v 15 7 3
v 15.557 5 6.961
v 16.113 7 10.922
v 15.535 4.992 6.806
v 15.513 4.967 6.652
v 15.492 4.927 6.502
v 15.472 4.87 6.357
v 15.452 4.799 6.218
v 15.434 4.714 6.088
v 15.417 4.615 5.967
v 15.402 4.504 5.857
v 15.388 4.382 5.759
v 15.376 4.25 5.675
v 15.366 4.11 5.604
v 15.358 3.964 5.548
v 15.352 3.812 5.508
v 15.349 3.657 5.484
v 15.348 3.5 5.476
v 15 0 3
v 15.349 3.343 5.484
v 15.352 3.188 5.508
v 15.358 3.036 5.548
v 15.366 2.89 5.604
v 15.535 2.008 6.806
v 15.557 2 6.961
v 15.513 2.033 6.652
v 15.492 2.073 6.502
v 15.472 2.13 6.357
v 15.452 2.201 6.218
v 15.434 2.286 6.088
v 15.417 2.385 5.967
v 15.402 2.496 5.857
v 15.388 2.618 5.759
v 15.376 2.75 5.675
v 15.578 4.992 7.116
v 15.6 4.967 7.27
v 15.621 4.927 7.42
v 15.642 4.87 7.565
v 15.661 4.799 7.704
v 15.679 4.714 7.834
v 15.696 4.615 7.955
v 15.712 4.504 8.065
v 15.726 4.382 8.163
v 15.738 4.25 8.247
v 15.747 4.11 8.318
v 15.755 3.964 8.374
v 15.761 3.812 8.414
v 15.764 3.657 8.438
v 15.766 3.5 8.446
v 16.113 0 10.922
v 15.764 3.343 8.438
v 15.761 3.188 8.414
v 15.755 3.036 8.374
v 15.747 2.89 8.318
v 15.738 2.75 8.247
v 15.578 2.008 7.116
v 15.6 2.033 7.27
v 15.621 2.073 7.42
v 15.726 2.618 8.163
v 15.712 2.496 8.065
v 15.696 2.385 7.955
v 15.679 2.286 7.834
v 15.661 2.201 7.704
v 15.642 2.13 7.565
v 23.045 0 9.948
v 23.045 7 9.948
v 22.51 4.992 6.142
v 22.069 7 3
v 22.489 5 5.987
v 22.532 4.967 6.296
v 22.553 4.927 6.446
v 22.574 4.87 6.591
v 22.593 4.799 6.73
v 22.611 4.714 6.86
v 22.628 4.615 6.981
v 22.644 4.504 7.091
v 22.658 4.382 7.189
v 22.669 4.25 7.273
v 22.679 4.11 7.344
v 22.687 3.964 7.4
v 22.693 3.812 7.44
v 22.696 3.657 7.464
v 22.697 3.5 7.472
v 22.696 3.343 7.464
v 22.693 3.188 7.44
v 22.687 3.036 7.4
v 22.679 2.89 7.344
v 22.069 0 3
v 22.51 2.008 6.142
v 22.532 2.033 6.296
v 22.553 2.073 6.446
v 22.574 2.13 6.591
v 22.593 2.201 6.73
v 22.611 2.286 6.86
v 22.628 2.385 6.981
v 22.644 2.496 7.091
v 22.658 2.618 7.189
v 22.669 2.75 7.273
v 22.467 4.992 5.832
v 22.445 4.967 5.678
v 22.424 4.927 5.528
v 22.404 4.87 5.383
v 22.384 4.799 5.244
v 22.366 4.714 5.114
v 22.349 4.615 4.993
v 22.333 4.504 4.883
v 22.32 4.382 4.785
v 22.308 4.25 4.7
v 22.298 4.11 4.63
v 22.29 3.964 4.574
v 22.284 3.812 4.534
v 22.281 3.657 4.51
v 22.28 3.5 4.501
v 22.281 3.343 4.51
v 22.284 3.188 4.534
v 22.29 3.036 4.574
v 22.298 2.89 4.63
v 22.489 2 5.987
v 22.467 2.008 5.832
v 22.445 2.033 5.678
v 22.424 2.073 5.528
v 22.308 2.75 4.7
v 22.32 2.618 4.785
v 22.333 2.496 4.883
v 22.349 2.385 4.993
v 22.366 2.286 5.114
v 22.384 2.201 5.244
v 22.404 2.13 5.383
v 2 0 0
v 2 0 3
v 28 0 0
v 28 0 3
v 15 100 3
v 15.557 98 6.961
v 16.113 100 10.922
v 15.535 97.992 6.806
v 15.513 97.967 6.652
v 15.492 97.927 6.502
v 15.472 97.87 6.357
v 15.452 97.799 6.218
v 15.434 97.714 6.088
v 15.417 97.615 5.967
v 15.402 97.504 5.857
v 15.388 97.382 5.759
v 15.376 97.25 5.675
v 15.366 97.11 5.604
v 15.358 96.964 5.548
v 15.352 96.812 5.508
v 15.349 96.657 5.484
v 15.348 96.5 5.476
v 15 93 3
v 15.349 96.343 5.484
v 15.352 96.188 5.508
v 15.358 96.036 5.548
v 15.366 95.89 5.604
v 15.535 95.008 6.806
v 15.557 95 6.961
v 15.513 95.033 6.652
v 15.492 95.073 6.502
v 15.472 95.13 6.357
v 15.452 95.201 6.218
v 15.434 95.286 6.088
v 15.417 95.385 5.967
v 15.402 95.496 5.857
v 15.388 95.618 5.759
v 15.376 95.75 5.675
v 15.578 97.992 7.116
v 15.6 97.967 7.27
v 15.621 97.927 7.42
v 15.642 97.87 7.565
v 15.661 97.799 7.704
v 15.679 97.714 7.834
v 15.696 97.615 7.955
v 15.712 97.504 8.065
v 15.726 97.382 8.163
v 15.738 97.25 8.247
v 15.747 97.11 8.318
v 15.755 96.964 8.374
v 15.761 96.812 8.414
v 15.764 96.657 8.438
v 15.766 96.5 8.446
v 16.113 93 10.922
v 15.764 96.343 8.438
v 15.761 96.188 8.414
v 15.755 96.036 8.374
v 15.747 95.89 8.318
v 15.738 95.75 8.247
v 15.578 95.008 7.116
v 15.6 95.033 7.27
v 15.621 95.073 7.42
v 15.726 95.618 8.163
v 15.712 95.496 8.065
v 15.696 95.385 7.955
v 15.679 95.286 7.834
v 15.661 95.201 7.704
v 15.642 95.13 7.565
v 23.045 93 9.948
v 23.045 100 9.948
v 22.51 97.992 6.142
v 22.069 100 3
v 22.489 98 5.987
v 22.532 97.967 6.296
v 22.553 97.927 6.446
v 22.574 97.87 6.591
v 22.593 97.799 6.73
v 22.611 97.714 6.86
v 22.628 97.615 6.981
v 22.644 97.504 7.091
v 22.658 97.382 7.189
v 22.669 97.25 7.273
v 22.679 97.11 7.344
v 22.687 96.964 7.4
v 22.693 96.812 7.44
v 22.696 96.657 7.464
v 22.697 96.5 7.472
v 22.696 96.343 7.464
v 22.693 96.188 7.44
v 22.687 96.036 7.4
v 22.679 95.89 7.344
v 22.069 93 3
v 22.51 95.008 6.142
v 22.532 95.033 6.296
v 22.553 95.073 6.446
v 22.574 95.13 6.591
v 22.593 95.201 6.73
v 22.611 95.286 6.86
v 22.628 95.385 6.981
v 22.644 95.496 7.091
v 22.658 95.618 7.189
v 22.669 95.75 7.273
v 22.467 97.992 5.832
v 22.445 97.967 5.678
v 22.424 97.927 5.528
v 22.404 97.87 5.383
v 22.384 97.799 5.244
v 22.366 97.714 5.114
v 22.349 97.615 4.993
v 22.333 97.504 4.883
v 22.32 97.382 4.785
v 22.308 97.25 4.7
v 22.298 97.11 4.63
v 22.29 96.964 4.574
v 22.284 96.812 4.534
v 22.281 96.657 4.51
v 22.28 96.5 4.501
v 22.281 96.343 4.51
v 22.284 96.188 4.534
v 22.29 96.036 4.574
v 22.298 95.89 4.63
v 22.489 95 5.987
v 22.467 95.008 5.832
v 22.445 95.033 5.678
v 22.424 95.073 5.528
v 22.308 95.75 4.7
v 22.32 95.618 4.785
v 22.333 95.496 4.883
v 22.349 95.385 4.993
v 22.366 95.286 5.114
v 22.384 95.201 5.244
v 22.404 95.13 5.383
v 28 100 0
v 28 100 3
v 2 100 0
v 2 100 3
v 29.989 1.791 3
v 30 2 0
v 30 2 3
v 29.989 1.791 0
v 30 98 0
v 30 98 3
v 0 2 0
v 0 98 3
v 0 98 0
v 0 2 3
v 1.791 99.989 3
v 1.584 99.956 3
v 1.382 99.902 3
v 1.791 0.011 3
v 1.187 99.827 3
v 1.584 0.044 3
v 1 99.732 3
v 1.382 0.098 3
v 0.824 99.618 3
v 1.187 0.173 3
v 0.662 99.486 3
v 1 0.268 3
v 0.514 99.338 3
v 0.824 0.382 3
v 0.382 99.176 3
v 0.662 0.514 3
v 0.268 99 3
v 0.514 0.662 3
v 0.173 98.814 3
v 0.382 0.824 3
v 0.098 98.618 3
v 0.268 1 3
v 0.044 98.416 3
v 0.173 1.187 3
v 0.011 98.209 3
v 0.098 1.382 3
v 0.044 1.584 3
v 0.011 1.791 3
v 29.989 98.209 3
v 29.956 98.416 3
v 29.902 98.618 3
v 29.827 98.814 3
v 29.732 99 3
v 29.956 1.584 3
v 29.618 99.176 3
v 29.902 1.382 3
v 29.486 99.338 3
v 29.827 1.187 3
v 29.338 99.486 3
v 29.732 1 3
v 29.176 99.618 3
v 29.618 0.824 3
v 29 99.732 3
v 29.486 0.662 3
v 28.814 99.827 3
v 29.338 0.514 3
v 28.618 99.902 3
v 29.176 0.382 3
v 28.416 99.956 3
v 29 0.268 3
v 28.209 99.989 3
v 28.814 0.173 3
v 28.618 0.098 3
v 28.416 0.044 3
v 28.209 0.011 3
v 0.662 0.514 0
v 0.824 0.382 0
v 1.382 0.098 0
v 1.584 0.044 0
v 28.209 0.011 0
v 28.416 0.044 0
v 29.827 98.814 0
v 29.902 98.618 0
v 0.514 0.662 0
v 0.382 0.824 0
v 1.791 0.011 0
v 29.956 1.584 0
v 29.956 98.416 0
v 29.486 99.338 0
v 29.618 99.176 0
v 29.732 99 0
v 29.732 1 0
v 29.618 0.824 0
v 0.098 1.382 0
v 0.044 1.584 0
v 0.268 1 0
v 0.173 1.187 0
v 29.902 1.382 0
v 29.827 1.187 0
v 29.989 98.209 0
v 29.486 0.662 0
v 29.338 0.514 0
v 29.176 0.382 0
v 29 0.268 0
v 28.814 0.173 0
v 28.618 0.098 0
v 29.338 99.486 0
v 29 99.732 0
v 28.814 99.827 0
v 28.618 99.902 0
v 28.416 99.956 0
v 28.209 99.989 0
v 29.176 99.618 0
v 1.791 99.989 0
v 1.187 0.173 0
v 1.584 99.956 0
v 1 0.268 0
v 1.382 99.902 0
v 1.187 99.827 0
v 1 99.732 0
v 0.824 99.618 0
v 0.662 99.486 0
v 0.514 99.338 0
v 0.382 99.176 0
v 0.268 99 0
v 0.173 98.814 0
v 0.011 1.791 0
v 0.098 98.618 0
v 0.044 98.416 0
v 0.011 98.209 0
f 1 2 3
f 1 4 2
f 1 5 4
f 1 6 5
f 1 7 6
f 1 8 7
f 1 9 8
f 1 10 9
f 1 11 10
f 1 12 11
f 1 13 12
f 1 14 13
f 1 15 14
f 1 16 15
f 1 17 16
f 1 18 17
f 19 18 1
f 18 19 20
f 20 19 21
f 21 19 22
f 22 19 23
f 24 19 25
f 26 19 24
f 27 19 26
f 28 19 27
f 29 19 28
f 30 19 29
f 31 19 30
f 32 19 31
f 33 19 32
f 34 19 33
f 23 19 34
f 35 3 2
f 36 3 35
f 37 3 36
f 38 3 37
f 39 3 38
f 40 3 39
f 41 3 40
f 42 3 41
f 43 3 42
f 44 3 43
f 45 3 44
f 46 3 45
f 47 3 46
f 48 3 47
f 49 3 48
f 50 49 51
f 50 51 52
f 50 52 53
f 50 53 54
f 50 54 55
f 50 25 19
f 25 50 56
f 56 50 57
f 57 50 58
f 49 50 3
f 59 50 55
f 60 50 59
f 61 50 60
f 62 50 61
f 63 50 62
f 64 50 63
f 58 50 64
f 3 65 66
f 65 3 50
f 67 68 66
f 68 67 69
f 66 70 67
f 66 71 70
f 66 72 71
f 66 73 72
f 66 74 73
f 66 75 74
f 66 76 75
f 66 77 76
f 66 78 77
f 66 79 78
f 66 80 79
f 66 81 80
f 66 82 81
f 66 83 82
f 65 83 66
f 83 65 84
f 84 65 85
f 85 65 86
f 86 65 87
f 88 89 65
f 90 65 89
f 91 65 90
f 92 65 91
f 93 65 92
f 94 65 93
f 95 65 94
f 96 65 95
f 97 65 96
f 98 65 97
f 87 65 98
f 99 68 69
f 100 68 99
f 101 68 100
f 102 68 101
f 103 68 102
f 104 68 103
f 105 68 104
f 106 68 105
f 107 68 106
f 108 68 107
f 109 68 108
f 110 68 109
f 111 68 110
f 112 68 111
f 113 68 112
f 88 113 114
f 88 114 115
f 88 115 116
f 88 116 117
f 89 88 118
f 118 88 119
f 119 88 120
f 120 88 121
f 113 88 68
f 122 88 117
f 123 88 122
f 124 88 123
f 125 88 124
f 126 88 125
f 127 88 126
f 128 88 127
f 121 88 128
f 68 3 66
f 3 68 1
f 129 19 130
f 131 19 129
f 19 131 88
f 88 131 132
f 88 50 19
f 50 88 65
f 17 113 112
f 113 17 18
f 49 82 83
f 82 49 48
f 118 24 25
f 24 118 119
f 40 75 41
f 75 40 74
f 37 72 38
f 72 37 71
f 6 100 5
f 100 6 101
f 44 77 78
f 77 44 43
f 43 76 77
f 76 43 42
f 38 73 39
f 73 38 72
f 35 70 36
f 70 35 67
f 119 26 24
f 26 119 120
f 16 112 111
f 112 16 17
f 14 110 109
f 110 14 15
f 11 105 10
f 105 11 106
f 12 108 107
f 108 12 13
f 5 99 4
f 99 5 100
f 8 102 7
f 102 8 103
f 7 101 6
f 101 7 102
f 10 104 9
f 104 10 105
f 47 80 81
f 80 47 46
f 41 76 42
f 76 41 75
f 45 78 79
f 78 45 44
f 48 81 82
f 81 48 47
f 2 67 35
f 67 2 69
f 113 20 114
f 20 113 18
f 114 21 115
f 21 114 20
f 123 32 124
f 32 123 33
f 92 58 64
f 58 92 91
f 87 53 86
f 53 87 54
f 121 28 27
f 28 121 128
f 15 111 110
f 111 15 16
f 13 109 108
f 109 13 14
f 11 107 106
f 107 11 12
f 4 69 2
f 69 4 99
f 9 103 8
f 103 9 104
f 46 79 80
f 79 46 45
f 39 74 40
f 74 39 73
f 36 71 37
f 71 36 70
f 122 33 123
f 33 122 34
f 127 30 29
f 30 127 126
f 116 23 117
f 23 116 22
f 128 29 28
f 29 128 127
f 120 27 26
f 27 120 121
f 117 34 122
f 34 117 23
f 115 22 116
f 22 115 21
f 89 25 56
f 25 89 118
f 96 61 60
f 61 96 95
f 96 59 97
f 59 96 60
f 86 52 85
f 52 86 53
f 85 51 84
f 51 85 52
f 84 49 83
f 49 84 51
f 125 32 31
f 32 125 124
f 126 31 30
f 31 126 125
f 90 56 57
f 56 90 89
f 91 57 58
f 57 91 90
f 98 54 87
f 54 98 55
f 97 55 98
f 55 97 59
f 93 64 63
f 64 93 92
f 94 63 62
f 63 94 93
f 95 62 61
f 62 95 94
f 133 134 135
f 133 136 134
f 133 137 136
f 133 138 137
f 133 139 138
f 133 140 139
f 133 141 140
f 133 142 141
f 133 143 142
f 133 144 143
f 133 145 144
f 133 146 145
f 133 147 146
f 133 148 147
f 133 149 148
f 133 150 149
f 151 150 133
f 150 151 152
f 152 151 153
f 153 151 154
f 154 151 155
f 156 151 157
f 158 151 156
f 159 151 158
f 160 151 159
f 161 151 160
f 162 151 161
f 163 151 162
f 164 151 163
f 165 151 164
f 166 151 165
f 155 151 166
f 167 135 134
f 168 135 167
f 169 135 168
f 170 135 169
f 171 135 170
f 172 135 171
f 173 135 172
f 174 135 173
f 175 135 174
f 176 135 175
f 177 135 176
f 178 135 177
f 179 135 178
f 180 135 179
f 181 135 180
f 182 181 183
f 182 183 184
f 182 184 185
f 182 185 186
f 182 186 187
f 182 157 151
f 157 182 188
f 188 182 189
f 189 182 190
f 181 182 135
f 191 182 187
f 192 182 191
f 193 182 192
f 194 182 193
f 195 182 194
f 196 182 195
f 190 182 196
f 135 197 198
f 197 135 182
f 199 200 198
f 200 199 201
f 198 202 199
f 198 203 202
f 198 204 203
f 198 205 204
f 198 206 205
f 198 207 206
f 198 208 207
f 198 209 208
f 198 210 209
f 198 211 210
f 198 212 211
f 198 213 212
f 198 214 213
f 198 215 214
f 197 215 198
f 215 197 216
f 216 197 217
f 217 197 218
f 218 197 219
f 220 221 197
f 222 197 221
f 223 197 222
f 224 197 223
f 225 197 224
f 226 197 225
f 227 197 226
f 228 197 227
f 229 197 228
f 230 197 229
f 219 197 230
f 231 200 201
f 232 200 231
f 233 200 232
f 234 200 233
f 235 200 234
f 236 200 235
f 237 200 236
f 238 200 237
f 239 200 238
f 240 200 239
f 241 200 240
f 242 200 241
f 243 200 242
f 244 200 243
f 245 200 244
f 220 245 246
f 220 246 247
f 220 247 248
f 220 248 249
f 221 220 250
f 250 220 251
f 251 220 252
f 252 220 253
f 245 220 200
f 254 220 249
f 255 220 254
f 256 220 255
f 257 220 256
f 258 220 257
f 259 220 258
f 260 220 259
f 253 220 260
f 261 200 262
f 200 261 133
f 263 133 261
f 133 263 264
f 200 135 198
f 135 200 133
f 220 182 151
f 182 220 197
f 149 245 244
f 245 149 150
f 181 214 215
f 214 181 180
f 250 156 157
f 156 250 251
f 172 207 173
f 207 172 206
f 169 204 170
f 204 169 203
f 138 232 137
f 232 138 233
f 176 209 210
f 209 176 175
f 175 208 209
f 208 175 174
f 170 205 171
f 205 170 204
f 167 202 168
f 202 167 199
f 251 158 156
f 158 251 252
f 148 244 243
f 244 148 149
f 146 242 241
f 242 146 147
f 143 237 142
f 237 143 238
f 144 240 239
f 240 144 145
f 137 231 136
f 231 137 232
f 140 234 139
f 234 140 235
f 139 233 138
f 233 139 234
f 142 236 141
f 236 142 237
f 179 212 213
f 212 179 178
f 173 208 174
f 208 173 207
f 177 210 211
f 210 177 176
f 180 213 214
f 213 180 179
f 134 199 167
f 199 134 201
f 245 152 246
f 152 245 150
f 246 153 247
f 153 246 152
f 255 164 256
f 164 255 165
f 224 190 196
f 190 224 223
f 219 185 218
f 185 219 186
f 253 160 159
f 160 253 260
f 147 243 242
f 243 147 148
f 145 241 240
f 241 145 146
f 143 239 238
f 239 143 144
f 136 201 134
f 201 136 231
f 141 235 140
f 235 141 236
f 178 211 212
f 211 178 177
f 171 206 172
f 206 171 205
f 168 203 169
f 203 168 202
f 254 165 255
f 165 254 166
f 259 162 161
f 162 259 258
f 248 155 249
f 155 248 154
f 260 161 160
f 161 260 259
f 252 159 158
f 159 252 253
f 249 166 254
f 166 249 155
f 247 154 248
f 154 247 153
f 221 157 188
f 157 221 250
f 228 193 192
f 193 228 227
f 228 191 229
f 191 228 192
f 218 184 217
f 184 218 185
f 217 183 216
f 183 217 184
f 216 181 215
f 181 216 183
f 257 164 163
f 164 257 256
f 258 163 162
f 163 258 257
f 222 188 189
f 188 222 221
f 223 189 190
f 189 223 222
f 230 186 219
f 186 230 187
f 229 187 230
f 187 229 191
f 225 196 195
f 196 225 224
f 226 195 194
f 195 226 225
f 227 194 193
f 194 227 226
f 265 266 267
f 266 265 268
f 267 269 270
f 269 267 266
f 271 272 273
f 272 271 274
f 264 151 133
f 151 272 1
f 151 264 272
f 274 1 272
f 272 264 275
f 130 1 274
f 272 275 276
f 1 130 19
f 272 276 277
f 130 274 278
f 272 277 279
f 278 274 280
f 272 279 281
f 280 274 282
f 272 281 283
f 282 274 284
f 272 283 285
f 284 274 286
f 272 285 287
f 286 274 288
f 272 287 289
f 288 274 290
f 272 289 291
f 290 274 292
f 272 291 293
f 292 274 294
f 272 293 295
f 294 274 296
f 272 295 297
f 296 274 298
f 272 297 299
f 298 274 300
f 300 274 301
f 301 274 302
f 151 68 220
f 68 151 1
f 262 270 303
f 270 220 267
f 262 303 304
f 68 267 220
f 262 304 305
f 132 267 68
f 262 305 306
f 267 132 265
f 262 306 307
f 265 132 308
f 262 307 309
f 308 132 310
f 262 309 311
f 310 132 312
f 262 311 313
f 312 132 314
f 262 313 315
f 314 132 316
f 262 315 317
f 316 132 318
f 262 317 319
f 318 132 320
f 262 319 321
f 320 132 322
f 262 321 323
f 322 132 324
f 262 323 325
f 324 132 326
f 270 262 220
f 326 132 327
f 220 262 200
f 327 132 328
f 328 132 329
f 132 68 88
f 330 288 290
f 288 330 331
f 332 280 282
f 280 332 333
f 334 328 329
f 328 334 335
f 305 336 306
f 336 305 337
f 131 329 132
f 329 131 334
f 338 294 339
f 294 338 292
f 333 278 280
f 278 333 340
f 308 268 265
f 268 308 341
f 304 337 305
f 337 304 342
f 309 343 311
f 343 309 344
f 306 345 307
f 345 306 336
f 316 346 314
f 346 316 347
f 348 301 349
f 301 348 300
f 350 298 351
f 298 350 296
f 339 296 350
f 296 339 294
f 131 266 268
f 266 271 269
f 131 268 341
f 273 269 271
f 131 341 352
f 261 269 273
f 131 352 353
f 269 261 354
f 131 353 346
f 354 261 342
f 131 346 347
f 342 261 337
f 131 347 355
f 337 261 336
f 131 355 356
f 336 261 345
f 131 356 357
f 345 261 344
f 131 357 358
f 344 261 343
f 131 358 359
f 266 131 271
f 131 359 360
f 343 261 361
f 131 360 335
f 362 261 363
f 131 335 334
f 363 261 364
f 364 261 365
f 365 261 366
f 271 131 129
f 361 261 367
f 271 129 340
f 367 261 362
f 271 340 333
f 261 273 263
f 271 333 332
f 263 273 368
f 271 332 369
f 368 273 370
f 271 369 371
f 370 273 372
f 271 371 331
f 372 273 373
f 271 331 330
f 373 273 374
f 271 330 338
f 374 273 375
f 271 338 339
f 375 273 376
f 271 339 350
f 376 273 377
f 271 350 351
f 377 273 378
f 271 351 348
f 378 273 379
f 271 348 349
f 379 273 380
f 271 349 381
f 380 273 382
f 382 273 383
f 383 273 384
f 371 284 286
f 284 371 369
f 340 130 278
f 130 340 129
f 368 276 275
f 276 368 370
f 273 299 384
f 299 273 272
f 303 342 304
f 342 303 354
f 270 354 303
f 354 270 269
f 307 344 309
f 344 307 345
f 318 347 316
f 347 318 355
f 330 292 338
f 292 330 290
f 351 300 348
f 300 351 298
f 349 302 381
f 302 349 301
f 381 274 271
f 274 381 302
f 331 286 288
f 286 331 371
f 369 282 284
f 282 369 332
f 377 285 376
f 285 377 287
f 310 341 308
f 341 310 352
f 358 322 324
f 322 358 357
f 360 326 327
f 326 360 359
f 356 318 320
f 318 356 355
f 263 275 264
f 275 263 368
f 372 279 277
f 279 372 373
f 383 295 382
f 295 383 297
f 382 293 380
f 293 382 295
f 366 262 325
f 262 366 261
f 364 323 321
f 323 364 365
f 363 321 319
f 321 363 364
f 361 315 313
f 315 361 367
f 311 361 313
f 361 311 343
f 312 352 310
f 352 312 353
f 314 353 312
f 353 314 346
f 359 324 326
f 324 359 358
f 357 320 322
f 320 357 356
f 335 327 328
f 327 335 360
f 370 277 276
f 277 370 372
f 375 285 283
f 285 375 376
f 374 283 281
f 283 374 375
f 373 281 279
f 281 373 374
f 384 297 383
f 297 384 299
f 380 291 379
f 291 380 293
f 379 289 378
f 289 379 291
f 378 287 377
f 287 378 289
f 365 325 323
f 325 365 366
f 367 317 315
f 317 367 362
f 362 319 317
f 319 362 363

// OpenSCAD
// TTL Clock Stand
//
// This program is free software: you can redistribute it and/or modify
// it under the terms of the GNU General Public License as published by
// the Free Software Foundation, either version 3 of the License, or
// (at your option) any later version.
//
// This program is distributed in the hope that it will be useful,
// but WITHOUT ANY WARRANTY; without even the implied warranty of
// MERCHANTABILITY or FITNESS FOR A PARTICULAR PURPOSE.  See the
// GNU General Public License for more details.
//
// You should have received a copy of the GNU General Public License
// along with this program.  If not, see <https://www.gnu.org/licenses/>.

corner_radius = 2;
$fn = 60;
width=100;
depth=30;
thick=3;
standoff_width=7;
standoff_depth=7;
standoff_height=8;
standoff_angle=8;
hole_diameter=3;

render_stand();

module render_stand() {
    // base plate
    rounded_box(depth,width,thick);
    // standoff 1
    translate([depth/2,0,thick]) {
        standoff(standoff_depth,standoff_width,standoff_height,hole_diameter,standoff_angle);
    }
    // standoff 2
    translate([depth/2,width-standoff_width,thick]) {
        standoff(standoff_depth,standoff_width,standoff_height,hole_diameter,standoff_angle);
    }
}

////////////////////////////////////////////////////////////////////////////////
module standoff(d,w,h,hole,angle)
{
    rotate([0,angle,0]) {
        difference () {
            cube([d,w,h]);
            translate([d/2,w/2,h/2]) {
                rotate([0,90,0]) {
                    cylinder(d=hole,h=d+0.2,center=true);
                }
            }
        }
    }
}

////////////////////////////////////////////////////////////////////////////////
// Rounded Box
module rounded_box(w,l,h,cr=corner_radius)
{
    translate([cr,cr,0]) {
        minkowski() {
            cube([w-cr*2,l-cr*2,h/2]);
            cylinder(r=cr,h=h/2,center=false);
        }
    }
}
